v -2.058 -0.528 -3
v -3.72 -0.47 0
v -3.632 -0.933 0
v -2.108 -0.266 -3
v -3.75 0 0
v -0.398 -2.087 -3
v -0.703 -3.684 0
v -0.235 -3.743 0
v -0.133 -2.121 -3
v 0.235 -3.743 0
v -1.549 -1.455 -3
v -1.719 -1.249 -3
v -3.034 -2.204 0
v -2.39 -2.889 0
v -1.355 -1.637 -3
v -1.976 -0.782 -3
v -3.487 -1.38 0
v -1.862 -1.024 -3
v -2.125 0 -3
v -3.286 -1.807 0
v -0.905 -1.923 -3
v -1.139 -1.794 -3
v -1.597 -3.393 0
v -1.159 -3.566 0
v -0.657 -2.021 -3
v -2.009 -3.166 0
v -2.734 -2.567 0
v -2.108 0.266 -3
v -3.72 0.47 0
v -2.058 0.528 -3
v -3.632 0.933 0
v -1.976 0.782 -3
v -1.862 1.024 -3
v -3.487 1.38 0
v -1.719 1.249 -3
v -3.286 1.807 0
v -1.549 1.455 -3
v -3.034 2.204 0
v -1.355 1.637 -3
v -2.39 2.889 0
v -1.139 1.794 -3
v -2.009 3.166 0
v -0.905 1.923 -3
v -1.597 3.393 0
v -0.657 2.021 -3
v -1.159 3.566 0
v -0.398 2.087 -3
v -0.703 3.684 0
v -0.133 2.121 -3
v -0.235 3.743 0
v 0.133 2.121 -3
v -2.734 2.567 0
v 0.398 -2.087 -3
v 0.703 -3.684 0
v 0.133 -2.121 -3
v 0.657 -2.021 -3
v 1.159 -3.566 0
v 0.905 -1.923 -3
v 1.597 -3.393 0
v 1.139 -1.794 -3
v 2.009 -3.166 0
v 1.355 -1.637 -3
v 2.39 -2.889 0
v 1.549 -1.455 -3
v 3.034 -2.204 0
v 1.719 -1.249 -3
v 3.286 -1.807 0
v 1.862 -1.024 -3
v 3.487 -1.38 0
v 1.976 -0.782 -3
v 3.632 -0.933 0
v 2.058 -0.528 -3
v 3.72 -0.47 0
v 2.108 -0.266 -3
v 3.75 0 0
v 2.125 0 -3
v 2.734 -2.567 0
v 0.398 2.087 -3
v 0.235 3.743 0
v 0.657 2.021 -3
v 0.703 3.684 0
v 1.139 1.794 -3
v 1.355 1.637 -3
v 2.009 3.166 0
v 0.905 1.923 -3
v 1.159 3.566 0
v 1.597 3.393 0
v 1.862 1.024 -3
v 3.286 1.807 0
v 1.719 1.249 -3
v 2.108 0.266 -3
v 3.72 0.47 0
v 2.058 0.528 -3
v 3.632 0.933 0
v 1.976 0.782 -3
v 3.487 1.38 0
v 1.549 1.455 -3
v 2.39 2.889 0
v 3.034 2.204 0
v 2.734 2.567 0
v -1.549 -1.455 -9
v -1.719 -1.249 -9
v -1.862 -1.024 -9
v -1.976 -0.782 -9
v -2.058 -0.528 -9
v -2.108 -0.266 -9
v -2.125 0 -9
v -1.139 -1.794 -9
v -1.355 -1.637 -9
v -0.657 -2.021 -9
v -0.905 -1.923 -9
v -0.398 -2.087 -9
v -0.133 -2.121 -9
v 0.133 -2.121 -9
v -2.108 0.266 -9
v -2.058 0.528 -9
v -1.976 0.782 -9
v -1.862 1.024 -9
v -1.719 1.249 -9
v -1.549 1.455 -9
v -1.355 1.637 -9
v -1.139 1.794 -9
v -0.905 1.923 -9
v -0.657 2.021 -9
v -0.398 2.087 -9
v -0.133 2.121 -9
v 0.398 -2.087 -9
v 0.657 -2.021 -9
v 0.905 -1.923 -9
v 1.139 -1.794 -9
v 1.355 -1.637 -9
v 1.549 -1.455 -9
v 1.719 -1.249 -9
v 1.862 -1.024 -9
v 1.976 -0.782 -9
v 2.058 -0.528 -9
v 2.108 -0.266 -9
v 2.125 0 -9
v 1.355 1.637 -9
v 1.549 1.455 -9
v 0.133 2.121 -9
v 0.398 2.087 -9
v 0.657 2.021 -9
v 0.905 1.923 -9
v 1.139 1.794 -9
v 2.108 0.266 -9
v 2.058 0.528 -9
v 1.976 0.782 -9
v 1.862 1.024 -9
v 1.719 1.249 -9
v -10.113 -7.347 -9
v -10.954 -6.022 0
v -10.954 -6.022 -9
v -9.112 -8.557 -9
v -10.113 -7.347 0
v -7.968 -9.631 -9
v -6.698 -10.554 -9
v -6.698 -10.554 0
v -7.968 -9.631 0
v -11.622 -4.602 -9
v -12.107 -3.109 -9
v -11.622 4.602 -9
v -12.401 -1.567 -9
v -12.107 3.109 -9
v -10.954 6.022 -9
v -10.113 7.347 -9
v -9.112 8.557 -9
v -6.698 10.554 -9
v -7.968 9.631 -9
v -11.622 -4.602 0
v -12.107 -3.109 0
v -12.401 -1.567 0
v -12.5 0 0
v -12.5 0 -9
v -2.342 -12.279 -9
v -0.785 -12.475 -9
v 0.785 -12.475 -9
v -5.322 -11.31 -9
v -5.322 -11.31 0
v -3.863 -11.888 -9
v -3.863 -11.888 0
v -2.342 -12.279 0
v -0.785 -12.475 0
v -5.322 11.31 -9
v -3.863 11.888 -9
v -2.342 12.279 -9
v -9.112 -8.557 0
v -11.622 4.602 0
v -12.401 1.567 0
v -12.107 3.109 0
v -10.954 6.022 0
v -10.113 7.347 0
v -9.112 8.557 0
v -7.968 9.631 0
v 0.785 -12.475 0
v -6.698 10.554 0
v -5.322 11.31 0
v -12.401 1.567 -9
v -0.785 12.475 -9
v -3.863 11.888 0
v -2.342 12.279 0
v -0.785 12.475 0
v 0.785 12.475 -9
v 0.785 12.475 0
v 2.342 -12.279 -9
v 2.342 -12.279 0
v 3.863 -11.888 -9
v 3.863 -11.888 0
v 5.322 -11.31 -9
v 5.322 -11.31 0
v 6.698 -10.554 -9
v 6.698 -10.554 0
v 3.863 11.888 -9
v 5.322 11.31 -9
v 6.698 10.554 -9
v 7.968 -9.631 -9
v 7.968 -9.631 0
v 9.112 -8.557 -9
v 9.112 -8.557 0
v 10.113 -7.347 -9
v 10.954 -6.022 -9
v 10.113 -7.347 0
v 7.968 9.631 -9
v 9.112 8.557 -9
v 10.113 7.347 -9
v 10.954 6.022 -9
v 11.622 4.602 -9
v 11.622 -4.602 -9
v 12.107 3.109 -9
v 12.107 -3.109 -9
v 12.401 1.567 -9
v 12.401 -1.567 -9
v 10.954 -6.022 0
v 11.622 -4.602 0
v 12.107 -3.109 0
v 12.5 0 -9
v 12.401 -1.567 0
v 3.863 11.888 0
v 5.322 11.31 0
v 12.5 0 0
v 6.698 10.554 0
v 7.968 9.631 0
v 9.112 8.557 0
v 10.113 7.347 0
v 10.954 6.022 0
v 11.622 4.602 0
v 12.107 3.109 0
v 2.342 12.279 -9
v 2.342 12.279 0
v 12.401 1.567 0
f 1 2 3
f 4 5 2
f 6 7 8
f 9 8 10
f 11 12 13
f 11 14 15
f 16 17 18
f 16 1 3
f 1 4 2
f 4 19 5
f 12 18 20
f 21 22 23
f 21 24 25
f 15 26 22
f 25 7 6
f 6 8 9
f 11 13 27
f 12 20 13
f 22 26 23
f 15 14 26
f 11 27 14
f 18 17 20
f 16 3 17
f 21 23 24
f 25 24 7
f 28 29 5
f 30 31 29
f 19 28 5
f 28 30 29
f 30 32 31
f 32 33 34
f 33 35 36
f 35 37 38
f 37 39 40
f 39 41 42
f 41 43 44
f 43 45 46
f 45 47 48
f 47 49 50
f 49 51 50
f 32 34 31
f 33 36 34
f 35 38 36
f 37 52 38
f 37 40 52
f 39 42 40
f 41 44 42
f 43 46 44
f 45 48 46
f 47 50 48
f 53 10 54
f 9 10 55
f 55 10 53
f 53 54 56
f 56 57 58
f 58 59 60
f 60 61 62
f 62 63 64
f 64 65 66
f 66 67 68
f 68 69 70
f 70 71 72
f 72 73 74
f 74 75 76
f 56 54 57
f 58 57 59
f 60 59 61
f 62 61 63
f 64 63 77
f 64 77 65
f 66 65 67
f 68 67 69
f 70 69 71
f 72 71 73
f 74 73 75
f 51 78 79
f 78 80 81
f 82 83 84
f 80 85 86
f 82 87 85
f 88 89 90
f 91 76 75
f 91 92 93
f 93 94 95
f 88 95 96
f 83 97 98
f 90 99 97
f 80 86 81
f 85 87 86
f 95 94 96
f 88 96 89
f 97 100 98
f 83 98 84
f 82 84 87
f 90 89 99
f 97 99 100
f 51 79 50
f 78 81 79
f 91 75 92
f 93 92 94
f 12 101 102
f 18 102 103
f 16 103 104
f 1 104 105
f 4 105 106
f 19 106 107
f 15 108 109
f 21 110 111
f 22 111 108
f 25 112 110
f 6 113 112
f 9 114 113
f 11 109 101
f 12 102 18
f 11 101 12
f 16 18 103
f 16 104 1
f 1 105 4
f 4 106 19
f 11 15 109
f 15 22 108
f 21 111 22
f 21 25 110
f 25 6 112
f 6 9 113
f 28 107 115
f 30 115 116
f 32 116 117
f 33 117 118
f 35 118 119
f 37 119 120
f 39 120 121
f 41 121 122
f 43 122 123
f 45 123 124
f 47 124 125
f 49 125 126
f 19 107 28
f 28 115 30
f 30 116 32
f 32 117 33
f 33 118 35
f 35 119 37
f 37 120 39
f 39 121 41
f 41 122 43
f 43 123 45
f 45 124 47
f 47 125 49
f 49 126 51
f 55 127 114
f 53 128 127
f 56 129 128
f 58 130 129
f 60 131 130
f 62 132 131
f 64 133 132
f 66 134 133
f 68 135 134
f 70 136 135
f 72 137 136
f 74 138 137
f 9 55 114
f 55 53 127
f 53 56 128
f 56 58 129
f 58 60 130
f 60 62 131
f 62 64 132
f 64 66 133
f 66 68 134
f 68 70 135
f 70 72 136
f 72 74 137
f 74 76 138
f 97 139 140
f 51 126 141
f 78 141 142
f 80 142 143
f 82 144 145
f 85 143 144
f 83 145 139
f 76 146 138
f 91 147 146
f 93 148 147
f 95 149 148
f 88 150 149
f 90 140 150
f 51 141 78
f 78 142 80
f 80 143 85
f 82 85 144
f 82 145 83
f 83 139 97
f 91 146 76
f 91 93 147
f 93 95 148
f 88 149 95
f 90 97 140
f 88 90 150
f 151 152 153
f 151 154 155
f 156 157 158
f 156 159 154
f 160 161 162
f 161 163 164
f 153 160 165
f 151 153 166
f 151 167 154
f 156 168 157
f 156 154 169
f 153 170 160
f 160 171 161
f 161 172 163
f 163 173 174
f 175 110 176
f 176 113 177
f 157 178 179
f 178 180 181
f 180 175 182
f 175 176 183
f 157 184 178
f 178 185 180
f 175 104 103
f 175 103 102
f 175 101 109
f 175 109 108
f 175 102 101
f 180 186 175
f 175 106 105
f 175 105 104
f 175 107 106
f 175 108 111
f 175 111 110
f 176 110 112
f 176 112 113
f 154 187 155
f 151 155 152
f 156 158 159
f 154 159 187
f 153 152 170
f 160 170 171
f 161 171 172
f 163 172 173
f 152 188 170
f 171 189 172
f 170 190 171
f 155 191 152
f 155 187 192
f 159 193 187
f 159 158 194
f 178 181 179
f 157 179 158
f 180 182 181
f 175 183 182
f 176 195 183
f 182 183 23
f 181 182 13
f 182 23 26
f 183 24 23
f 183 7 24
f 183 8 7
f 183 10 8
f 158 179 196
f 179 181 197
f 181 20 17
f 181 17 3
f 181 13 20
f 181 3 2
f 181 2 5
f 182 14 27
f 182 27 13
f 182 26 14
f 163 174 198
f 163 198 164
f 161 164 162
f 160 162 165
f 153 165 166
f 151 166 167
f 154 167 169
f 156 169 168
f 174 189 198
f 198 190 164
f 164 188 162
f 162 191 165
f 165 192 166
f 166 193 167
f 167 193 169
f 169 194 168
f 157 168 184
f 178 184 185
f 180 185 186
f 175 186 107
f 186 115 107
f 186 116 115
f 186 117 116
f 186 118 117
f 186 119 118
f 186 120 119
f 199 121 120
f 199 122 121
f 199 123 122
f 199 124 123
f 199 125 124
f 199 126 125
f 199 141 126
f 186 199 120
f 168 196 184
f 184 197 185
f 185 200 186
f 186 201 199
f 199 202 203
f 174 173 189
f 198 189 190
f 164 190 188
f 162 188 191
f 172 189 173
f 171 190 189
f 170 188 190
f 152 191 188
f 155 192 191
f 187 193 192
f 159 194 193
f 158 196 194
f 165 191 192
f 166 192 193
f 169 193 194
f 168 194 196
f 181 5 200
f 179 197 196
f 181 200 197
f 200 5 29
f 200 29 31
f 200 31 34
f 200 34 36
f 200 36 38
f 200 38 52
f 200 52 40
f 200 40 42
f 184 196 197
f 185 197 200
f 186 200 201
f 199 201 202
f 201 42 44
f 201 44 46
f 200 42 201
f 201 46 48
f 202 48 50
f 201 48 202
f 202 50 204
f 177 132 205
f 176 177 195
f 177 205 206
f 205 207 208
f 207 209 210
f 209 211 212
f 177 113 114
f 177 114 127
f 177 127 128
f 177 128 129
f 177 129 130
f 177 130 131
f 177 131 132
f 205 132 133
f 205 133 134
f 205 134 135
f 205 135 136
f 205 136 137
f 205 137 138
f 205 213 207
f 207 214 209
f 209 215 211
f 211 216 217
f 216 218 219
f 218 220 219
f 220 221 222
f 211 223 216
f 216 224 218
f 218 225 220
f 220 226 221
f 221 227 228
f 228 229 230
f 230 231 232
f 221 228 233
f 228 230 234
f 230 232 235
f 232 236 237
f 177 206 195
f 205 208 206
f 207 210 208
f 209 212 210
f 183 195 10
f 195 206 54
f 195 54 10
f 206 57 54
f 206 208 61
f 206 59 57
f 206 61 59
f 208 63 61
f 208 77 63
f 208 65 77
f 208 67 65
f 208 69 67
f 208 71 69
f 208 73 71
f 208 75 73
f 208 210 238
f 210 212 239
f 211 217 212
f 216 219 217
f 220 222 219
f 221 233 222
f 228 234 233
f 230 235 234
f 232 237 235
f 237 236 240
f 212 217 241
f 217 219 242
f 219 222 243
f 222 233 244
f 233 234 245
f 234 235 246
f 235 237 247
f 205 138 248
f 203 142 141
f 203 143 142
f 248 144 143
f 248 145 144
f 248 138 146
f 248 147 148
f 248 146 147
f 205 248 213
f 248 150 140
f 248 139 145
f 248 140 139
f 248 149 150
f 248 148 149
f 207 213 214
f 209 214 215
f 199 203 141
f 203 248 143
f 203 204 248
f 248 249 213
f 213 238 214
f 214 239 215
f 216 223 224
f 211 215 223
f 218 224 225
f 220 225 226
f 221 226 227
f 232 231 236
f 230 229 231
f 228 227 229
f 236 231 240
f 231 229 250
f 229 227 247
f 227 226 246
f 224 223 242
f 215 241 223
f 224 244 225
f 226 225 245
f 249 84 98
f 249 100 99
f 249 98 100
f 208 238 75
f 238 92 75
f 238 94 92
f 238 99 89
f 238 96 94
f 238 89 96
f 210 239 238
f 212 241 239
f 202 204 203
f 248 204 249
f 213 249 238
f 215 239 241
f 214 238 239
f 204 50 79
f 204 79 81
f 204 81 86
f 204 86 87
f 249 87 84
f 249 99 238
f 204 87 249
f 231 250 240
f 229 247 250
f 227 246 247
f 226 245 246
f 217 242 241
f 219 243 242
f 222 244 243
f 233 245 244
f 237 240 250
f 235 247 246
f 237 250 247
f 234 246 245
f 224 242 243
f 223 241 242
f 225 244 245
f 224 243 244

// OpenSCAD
$fn = 50;

difference() {
	union() {
		translate(v = [0, 0, -9.0]) {
			cylinder(h = 9, r = 12.5);
		}
	}
	union() {
		translate(v = [0, 0, 0]) {
			rotate(a = [0, 0, 0]) {
				difference() {
					union() {
						translate(v = [0, 0, -12.0]) {
							cylinder(h = 12, r = 2.0);
						}
						translate(v = [0, 0, -3]) {
							cylinder(h = 3, r1 = 2.125, r2 = 3.75);
						}
						translate(v = [0, 0, -12.0]) {
							cylinder(h = 12, r = 2.125);
						}
						translate(v = [0, 0, -12.0]) {
							cylinder(h = 12, r = 2.0);
						}
					}
					union();
				}
			}
		}
	}
}
